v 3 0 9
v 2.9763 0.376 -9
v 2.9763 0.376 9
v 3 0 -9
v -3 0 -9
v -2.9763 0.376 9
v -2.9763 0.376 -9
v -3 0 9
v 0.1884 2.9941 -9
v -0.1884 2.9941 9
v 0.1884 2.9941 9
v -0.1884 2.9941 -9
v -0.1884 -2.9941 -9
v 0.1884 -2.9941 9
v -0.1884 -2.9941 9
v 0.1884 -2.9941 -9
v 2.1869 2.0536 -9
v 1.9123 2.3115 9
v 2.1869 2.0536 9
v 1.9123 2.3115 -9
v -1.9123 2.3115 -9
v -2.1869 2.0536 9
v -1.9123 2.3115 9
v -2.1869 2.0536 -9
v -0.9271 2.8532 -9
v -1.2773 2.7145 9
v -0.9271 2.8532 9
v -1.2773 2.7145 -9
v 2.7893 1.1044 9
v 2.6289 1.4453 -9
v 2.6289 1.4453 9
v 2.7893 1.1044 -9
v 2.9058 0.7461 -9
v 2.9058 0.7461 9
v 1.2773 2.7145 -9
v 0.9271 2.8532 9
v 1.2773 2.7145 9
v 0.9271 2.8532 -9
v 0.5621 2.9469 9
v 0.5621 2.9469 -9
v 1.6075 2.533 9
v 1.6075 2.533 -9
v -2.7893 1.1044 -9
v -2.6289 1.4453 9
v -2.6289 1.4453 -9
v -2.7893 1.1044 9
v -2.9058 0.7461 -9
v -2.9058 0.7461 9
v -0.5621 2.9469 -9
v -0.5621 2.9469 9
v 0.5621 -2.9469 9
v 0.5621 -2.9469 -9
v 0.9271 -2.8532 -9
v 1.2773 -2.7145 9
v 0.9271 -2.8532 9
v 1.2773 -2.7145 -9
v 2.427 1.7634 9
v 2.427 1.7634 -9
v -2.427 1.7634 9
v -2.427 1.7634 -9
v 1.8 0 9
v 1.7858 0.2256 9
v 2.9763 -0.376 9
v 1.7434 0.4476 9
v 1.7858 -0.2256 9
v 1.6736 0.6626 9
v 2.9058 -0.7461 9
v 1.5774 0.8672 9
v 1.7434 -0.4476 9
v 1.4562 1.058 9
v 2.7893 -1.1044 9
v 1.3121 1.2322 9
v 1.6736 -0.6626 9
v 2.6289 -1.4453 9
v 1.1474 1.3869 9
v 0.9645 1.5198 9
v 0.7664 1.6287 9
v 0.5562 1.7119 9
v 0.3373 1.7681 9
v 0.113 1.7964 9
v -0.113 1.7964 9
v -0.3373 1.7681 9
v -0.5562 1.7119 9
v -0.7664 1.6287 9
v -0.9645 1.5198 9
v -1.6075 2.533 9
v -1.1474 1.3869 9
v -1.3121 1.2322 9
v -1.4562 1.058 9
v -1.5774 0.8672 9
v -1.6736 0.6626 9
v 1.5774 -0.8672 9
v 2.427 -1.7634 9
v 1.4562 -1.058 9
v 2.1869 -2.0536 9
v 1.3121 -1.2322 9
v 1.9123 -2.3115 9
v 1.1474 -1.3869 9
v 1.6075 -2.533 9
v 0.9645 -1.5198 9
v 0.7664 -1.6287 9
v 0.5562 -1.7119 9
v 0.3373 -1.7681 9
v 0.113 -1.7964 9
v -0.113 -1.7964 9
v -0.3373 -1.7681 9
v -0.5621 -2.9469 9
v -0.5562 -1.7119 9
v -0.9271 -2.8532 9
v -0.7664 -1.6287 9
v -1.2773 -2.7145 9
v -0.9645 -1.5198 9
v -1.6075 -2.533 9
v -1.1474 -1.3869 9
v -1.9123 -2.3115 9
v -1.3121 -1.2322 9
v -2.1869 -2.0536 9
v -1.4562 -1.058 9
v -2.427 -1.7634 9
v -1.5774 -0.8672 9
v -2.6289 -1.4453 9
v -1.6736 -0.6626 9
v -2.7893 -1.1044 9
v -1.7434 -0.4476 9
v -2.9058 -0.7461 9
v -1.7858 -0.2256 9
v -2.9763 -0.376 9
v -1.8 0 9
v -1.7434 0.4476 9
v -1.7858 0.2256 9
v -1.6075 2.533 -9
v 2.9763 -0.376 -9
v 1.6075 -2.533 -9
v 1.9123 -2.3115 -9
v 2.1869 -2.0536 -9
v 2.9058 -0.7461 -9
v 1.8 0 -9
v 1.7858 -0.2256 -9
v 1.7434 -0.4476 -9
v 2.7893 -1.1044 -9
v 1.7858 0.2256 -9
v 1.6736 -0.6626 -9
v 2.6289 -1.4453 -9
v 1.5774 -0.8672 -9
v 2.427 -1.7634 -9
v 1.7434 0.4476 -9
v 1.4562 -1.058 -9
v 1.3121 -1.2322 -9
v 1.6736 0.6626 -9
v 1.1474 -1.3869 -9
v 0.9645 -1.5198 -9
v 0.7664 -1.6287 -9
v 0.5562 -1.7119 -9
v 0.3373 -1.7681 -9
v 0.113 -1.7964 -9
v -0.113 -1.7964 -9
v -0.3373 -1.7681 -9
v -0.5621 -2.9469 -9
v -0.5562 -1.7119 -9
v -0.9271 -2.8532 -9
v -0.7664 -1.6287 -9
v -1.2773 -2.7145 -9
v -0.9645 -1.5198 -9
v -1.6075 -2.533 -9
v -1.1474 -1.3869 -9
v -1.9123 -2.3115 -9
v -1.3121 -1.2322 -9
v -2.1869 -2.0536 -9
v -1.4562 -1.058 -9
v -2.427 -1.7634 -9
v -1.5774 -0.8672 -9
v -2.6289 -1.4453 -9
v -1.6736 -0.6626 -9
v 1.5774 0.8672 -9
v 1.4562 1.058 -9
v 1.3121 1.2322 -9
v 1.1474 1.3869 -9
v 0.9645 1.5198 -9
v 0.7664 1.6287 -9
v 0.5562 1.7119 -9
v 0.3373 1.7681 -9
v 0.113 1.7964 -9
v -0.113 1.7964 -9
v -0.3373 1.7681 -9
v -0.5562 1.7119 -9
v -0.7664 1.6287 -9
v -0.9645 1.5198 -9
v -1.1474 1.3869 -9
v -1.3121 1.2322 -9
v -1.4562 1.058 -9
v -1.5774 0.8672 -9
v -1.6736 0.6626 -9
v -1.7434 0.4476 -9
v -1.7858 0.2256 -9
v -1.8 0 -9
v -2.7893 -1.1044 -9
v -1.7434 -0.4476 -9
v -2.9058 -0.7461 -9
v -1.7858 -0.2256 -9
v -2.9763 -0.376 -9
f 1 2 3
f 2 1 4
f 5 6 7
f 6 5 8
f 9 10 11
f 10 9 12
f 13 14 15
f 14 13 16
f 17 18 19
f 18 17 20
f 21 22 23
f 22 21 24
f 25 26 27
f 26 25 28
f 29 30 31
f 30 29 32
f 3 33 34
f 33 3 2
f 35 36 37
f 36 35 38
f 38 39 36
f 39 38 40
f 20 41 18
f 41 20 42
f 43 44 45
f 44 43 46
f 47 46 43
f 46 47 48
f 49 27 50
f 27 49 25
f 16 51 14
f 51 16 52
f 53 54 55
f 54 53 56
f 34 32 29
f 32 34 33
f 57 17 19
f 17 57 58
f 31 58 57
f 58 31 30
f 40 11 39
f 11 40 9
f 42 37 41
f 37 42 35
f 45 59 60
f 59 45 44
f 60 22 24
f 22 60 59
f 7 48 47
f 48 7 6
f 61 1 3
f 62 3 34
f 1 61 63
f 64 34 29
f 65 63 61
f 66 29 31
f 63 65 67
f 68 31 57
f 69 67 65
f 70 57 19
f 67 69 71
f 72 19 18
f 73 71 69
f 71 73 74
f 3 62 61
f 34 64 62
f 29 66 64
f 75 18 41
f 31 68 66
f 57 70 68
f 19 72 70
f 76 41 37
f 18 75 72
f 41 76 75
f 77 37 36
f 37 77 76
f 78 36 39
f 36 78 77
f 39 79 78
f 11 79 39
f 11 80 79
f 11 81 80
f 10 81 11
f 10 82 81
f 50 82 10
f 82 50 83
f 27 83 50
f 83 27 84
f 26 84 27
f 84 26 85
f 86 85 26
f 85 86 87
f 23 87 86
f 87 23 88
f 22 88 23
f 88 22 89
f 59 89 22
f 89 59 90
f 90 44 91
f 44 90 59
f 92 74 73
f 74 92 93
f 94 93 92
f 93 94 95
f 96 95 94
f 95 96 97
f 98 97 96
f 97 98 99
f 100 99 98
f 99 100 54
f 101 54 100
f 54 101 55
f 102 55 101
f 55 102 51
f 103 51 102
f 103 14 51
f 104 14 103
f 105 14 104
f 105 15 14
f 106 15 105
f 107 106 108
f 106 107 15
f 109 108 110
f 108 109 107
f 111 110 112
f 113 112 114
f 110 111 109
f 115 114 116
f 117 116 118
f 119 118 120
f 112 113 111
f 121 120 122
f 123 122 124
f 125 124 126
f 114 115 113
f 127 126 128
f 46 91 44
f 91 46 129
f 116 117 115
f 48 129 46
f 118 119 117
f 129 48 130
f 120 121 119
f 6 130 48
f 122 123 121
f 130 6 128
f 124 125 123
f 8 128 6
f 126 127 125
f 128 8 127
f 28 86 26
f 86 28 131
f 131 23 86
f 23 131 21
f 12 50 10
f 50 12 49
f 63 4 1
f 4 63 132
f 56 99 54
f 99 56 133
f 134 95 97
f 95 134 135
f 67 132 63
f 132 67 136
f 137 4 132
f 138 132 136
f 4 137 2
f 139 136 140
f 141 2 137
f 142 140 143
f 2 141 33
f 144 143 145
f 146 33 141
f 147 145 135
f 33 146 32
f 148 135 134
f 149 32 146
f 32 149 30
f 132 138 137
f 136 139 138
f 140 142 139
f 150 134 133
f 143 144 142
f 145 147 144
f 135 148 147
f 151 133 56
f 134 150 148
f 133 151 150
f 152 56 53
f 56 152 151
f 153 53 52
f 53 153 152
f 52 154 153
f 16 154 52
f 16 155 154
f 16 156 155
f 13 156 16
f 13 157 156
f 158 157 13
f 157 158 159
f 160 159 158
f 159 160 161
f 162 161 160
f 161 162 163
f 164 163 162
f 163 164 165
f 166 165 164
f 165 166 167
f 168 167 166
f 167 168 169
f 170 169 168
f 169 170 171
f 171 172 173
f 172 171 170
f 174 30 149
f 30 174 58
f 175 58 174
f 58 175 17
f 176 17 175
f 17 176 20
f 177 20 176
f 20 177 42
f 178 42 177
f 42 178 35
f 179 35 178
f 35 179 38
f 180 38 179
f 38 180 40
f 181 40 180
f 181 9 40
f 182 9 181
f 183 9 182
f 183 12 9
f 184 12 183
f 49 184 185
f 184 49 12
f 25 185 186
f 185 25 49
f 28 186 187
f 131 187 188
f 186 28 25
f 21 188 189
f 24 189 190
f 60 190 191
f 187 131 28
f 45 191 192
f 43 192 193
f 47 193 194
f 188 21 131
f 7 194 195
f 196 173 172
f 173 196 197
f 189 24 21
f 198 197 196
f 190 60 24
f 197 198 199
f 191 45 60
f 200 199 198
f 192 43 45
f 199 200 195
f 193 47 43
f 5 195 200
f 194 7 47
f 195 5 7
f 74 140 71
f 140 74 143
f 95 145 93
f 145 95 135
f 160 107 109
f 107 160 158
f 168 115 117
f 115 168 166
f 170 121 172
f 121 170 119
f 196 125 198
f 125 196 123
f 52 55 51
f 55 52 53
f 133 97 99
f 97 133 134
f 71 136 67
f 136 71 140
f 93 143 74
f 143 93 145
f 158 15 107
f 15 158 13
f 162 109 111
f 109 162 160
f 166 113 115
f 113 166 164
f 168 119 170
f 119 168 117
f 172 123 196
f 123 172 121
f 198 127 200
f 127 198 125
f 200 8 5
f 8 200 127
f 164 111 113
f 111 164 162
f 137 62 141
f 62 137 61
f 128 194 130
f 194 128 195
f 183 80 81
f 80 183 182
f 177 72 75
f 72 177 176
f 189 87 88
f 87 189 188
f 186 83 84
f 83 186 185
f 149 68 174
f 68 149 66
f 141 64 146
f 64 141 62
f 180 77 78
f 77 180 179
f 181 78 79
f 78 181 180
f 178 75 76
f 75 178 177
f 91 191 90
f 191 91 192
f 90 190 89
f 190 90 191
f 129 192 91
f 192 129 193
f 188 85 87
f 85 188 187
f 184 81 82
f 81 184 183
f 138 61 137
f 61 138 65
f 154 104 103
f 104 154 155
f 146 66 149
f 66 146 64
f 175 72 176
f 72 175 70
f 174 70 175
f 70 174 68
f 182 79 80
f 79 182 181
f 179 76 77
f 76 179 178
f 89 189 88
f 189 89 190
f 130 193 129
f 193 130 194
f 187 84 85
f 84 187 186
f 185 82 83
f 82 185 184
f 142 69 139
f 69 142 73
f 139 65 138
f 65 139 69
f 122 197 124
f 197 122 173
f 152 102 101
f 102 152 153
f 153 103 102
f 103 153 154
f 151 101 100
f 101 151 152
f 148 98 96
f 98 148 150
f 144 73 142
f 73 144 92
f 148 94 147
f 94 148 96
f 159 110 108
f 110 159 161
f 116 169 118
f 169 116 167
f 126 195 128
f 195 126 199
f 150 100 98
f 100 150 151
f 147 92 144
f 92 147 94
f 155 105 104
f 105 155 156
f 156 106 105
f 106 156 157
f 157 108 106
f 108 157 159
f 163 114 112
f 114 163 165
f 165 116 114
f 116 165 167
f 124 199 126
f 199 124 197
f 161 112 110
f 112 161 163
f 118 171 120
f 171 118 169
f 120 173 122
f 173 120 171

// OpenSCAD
$fn = 50;


difference() {
	union() {
		translate(v = [0, 0, -9.0000000000]) {
			cylinder(h = 18, r = 3.0000000000);
		}
	}
	union() {
		translate(v = [0, 0, -100.0000000000]) {
			cylinder(h = 200, r = 1.8000000000);
		}
	}
}
